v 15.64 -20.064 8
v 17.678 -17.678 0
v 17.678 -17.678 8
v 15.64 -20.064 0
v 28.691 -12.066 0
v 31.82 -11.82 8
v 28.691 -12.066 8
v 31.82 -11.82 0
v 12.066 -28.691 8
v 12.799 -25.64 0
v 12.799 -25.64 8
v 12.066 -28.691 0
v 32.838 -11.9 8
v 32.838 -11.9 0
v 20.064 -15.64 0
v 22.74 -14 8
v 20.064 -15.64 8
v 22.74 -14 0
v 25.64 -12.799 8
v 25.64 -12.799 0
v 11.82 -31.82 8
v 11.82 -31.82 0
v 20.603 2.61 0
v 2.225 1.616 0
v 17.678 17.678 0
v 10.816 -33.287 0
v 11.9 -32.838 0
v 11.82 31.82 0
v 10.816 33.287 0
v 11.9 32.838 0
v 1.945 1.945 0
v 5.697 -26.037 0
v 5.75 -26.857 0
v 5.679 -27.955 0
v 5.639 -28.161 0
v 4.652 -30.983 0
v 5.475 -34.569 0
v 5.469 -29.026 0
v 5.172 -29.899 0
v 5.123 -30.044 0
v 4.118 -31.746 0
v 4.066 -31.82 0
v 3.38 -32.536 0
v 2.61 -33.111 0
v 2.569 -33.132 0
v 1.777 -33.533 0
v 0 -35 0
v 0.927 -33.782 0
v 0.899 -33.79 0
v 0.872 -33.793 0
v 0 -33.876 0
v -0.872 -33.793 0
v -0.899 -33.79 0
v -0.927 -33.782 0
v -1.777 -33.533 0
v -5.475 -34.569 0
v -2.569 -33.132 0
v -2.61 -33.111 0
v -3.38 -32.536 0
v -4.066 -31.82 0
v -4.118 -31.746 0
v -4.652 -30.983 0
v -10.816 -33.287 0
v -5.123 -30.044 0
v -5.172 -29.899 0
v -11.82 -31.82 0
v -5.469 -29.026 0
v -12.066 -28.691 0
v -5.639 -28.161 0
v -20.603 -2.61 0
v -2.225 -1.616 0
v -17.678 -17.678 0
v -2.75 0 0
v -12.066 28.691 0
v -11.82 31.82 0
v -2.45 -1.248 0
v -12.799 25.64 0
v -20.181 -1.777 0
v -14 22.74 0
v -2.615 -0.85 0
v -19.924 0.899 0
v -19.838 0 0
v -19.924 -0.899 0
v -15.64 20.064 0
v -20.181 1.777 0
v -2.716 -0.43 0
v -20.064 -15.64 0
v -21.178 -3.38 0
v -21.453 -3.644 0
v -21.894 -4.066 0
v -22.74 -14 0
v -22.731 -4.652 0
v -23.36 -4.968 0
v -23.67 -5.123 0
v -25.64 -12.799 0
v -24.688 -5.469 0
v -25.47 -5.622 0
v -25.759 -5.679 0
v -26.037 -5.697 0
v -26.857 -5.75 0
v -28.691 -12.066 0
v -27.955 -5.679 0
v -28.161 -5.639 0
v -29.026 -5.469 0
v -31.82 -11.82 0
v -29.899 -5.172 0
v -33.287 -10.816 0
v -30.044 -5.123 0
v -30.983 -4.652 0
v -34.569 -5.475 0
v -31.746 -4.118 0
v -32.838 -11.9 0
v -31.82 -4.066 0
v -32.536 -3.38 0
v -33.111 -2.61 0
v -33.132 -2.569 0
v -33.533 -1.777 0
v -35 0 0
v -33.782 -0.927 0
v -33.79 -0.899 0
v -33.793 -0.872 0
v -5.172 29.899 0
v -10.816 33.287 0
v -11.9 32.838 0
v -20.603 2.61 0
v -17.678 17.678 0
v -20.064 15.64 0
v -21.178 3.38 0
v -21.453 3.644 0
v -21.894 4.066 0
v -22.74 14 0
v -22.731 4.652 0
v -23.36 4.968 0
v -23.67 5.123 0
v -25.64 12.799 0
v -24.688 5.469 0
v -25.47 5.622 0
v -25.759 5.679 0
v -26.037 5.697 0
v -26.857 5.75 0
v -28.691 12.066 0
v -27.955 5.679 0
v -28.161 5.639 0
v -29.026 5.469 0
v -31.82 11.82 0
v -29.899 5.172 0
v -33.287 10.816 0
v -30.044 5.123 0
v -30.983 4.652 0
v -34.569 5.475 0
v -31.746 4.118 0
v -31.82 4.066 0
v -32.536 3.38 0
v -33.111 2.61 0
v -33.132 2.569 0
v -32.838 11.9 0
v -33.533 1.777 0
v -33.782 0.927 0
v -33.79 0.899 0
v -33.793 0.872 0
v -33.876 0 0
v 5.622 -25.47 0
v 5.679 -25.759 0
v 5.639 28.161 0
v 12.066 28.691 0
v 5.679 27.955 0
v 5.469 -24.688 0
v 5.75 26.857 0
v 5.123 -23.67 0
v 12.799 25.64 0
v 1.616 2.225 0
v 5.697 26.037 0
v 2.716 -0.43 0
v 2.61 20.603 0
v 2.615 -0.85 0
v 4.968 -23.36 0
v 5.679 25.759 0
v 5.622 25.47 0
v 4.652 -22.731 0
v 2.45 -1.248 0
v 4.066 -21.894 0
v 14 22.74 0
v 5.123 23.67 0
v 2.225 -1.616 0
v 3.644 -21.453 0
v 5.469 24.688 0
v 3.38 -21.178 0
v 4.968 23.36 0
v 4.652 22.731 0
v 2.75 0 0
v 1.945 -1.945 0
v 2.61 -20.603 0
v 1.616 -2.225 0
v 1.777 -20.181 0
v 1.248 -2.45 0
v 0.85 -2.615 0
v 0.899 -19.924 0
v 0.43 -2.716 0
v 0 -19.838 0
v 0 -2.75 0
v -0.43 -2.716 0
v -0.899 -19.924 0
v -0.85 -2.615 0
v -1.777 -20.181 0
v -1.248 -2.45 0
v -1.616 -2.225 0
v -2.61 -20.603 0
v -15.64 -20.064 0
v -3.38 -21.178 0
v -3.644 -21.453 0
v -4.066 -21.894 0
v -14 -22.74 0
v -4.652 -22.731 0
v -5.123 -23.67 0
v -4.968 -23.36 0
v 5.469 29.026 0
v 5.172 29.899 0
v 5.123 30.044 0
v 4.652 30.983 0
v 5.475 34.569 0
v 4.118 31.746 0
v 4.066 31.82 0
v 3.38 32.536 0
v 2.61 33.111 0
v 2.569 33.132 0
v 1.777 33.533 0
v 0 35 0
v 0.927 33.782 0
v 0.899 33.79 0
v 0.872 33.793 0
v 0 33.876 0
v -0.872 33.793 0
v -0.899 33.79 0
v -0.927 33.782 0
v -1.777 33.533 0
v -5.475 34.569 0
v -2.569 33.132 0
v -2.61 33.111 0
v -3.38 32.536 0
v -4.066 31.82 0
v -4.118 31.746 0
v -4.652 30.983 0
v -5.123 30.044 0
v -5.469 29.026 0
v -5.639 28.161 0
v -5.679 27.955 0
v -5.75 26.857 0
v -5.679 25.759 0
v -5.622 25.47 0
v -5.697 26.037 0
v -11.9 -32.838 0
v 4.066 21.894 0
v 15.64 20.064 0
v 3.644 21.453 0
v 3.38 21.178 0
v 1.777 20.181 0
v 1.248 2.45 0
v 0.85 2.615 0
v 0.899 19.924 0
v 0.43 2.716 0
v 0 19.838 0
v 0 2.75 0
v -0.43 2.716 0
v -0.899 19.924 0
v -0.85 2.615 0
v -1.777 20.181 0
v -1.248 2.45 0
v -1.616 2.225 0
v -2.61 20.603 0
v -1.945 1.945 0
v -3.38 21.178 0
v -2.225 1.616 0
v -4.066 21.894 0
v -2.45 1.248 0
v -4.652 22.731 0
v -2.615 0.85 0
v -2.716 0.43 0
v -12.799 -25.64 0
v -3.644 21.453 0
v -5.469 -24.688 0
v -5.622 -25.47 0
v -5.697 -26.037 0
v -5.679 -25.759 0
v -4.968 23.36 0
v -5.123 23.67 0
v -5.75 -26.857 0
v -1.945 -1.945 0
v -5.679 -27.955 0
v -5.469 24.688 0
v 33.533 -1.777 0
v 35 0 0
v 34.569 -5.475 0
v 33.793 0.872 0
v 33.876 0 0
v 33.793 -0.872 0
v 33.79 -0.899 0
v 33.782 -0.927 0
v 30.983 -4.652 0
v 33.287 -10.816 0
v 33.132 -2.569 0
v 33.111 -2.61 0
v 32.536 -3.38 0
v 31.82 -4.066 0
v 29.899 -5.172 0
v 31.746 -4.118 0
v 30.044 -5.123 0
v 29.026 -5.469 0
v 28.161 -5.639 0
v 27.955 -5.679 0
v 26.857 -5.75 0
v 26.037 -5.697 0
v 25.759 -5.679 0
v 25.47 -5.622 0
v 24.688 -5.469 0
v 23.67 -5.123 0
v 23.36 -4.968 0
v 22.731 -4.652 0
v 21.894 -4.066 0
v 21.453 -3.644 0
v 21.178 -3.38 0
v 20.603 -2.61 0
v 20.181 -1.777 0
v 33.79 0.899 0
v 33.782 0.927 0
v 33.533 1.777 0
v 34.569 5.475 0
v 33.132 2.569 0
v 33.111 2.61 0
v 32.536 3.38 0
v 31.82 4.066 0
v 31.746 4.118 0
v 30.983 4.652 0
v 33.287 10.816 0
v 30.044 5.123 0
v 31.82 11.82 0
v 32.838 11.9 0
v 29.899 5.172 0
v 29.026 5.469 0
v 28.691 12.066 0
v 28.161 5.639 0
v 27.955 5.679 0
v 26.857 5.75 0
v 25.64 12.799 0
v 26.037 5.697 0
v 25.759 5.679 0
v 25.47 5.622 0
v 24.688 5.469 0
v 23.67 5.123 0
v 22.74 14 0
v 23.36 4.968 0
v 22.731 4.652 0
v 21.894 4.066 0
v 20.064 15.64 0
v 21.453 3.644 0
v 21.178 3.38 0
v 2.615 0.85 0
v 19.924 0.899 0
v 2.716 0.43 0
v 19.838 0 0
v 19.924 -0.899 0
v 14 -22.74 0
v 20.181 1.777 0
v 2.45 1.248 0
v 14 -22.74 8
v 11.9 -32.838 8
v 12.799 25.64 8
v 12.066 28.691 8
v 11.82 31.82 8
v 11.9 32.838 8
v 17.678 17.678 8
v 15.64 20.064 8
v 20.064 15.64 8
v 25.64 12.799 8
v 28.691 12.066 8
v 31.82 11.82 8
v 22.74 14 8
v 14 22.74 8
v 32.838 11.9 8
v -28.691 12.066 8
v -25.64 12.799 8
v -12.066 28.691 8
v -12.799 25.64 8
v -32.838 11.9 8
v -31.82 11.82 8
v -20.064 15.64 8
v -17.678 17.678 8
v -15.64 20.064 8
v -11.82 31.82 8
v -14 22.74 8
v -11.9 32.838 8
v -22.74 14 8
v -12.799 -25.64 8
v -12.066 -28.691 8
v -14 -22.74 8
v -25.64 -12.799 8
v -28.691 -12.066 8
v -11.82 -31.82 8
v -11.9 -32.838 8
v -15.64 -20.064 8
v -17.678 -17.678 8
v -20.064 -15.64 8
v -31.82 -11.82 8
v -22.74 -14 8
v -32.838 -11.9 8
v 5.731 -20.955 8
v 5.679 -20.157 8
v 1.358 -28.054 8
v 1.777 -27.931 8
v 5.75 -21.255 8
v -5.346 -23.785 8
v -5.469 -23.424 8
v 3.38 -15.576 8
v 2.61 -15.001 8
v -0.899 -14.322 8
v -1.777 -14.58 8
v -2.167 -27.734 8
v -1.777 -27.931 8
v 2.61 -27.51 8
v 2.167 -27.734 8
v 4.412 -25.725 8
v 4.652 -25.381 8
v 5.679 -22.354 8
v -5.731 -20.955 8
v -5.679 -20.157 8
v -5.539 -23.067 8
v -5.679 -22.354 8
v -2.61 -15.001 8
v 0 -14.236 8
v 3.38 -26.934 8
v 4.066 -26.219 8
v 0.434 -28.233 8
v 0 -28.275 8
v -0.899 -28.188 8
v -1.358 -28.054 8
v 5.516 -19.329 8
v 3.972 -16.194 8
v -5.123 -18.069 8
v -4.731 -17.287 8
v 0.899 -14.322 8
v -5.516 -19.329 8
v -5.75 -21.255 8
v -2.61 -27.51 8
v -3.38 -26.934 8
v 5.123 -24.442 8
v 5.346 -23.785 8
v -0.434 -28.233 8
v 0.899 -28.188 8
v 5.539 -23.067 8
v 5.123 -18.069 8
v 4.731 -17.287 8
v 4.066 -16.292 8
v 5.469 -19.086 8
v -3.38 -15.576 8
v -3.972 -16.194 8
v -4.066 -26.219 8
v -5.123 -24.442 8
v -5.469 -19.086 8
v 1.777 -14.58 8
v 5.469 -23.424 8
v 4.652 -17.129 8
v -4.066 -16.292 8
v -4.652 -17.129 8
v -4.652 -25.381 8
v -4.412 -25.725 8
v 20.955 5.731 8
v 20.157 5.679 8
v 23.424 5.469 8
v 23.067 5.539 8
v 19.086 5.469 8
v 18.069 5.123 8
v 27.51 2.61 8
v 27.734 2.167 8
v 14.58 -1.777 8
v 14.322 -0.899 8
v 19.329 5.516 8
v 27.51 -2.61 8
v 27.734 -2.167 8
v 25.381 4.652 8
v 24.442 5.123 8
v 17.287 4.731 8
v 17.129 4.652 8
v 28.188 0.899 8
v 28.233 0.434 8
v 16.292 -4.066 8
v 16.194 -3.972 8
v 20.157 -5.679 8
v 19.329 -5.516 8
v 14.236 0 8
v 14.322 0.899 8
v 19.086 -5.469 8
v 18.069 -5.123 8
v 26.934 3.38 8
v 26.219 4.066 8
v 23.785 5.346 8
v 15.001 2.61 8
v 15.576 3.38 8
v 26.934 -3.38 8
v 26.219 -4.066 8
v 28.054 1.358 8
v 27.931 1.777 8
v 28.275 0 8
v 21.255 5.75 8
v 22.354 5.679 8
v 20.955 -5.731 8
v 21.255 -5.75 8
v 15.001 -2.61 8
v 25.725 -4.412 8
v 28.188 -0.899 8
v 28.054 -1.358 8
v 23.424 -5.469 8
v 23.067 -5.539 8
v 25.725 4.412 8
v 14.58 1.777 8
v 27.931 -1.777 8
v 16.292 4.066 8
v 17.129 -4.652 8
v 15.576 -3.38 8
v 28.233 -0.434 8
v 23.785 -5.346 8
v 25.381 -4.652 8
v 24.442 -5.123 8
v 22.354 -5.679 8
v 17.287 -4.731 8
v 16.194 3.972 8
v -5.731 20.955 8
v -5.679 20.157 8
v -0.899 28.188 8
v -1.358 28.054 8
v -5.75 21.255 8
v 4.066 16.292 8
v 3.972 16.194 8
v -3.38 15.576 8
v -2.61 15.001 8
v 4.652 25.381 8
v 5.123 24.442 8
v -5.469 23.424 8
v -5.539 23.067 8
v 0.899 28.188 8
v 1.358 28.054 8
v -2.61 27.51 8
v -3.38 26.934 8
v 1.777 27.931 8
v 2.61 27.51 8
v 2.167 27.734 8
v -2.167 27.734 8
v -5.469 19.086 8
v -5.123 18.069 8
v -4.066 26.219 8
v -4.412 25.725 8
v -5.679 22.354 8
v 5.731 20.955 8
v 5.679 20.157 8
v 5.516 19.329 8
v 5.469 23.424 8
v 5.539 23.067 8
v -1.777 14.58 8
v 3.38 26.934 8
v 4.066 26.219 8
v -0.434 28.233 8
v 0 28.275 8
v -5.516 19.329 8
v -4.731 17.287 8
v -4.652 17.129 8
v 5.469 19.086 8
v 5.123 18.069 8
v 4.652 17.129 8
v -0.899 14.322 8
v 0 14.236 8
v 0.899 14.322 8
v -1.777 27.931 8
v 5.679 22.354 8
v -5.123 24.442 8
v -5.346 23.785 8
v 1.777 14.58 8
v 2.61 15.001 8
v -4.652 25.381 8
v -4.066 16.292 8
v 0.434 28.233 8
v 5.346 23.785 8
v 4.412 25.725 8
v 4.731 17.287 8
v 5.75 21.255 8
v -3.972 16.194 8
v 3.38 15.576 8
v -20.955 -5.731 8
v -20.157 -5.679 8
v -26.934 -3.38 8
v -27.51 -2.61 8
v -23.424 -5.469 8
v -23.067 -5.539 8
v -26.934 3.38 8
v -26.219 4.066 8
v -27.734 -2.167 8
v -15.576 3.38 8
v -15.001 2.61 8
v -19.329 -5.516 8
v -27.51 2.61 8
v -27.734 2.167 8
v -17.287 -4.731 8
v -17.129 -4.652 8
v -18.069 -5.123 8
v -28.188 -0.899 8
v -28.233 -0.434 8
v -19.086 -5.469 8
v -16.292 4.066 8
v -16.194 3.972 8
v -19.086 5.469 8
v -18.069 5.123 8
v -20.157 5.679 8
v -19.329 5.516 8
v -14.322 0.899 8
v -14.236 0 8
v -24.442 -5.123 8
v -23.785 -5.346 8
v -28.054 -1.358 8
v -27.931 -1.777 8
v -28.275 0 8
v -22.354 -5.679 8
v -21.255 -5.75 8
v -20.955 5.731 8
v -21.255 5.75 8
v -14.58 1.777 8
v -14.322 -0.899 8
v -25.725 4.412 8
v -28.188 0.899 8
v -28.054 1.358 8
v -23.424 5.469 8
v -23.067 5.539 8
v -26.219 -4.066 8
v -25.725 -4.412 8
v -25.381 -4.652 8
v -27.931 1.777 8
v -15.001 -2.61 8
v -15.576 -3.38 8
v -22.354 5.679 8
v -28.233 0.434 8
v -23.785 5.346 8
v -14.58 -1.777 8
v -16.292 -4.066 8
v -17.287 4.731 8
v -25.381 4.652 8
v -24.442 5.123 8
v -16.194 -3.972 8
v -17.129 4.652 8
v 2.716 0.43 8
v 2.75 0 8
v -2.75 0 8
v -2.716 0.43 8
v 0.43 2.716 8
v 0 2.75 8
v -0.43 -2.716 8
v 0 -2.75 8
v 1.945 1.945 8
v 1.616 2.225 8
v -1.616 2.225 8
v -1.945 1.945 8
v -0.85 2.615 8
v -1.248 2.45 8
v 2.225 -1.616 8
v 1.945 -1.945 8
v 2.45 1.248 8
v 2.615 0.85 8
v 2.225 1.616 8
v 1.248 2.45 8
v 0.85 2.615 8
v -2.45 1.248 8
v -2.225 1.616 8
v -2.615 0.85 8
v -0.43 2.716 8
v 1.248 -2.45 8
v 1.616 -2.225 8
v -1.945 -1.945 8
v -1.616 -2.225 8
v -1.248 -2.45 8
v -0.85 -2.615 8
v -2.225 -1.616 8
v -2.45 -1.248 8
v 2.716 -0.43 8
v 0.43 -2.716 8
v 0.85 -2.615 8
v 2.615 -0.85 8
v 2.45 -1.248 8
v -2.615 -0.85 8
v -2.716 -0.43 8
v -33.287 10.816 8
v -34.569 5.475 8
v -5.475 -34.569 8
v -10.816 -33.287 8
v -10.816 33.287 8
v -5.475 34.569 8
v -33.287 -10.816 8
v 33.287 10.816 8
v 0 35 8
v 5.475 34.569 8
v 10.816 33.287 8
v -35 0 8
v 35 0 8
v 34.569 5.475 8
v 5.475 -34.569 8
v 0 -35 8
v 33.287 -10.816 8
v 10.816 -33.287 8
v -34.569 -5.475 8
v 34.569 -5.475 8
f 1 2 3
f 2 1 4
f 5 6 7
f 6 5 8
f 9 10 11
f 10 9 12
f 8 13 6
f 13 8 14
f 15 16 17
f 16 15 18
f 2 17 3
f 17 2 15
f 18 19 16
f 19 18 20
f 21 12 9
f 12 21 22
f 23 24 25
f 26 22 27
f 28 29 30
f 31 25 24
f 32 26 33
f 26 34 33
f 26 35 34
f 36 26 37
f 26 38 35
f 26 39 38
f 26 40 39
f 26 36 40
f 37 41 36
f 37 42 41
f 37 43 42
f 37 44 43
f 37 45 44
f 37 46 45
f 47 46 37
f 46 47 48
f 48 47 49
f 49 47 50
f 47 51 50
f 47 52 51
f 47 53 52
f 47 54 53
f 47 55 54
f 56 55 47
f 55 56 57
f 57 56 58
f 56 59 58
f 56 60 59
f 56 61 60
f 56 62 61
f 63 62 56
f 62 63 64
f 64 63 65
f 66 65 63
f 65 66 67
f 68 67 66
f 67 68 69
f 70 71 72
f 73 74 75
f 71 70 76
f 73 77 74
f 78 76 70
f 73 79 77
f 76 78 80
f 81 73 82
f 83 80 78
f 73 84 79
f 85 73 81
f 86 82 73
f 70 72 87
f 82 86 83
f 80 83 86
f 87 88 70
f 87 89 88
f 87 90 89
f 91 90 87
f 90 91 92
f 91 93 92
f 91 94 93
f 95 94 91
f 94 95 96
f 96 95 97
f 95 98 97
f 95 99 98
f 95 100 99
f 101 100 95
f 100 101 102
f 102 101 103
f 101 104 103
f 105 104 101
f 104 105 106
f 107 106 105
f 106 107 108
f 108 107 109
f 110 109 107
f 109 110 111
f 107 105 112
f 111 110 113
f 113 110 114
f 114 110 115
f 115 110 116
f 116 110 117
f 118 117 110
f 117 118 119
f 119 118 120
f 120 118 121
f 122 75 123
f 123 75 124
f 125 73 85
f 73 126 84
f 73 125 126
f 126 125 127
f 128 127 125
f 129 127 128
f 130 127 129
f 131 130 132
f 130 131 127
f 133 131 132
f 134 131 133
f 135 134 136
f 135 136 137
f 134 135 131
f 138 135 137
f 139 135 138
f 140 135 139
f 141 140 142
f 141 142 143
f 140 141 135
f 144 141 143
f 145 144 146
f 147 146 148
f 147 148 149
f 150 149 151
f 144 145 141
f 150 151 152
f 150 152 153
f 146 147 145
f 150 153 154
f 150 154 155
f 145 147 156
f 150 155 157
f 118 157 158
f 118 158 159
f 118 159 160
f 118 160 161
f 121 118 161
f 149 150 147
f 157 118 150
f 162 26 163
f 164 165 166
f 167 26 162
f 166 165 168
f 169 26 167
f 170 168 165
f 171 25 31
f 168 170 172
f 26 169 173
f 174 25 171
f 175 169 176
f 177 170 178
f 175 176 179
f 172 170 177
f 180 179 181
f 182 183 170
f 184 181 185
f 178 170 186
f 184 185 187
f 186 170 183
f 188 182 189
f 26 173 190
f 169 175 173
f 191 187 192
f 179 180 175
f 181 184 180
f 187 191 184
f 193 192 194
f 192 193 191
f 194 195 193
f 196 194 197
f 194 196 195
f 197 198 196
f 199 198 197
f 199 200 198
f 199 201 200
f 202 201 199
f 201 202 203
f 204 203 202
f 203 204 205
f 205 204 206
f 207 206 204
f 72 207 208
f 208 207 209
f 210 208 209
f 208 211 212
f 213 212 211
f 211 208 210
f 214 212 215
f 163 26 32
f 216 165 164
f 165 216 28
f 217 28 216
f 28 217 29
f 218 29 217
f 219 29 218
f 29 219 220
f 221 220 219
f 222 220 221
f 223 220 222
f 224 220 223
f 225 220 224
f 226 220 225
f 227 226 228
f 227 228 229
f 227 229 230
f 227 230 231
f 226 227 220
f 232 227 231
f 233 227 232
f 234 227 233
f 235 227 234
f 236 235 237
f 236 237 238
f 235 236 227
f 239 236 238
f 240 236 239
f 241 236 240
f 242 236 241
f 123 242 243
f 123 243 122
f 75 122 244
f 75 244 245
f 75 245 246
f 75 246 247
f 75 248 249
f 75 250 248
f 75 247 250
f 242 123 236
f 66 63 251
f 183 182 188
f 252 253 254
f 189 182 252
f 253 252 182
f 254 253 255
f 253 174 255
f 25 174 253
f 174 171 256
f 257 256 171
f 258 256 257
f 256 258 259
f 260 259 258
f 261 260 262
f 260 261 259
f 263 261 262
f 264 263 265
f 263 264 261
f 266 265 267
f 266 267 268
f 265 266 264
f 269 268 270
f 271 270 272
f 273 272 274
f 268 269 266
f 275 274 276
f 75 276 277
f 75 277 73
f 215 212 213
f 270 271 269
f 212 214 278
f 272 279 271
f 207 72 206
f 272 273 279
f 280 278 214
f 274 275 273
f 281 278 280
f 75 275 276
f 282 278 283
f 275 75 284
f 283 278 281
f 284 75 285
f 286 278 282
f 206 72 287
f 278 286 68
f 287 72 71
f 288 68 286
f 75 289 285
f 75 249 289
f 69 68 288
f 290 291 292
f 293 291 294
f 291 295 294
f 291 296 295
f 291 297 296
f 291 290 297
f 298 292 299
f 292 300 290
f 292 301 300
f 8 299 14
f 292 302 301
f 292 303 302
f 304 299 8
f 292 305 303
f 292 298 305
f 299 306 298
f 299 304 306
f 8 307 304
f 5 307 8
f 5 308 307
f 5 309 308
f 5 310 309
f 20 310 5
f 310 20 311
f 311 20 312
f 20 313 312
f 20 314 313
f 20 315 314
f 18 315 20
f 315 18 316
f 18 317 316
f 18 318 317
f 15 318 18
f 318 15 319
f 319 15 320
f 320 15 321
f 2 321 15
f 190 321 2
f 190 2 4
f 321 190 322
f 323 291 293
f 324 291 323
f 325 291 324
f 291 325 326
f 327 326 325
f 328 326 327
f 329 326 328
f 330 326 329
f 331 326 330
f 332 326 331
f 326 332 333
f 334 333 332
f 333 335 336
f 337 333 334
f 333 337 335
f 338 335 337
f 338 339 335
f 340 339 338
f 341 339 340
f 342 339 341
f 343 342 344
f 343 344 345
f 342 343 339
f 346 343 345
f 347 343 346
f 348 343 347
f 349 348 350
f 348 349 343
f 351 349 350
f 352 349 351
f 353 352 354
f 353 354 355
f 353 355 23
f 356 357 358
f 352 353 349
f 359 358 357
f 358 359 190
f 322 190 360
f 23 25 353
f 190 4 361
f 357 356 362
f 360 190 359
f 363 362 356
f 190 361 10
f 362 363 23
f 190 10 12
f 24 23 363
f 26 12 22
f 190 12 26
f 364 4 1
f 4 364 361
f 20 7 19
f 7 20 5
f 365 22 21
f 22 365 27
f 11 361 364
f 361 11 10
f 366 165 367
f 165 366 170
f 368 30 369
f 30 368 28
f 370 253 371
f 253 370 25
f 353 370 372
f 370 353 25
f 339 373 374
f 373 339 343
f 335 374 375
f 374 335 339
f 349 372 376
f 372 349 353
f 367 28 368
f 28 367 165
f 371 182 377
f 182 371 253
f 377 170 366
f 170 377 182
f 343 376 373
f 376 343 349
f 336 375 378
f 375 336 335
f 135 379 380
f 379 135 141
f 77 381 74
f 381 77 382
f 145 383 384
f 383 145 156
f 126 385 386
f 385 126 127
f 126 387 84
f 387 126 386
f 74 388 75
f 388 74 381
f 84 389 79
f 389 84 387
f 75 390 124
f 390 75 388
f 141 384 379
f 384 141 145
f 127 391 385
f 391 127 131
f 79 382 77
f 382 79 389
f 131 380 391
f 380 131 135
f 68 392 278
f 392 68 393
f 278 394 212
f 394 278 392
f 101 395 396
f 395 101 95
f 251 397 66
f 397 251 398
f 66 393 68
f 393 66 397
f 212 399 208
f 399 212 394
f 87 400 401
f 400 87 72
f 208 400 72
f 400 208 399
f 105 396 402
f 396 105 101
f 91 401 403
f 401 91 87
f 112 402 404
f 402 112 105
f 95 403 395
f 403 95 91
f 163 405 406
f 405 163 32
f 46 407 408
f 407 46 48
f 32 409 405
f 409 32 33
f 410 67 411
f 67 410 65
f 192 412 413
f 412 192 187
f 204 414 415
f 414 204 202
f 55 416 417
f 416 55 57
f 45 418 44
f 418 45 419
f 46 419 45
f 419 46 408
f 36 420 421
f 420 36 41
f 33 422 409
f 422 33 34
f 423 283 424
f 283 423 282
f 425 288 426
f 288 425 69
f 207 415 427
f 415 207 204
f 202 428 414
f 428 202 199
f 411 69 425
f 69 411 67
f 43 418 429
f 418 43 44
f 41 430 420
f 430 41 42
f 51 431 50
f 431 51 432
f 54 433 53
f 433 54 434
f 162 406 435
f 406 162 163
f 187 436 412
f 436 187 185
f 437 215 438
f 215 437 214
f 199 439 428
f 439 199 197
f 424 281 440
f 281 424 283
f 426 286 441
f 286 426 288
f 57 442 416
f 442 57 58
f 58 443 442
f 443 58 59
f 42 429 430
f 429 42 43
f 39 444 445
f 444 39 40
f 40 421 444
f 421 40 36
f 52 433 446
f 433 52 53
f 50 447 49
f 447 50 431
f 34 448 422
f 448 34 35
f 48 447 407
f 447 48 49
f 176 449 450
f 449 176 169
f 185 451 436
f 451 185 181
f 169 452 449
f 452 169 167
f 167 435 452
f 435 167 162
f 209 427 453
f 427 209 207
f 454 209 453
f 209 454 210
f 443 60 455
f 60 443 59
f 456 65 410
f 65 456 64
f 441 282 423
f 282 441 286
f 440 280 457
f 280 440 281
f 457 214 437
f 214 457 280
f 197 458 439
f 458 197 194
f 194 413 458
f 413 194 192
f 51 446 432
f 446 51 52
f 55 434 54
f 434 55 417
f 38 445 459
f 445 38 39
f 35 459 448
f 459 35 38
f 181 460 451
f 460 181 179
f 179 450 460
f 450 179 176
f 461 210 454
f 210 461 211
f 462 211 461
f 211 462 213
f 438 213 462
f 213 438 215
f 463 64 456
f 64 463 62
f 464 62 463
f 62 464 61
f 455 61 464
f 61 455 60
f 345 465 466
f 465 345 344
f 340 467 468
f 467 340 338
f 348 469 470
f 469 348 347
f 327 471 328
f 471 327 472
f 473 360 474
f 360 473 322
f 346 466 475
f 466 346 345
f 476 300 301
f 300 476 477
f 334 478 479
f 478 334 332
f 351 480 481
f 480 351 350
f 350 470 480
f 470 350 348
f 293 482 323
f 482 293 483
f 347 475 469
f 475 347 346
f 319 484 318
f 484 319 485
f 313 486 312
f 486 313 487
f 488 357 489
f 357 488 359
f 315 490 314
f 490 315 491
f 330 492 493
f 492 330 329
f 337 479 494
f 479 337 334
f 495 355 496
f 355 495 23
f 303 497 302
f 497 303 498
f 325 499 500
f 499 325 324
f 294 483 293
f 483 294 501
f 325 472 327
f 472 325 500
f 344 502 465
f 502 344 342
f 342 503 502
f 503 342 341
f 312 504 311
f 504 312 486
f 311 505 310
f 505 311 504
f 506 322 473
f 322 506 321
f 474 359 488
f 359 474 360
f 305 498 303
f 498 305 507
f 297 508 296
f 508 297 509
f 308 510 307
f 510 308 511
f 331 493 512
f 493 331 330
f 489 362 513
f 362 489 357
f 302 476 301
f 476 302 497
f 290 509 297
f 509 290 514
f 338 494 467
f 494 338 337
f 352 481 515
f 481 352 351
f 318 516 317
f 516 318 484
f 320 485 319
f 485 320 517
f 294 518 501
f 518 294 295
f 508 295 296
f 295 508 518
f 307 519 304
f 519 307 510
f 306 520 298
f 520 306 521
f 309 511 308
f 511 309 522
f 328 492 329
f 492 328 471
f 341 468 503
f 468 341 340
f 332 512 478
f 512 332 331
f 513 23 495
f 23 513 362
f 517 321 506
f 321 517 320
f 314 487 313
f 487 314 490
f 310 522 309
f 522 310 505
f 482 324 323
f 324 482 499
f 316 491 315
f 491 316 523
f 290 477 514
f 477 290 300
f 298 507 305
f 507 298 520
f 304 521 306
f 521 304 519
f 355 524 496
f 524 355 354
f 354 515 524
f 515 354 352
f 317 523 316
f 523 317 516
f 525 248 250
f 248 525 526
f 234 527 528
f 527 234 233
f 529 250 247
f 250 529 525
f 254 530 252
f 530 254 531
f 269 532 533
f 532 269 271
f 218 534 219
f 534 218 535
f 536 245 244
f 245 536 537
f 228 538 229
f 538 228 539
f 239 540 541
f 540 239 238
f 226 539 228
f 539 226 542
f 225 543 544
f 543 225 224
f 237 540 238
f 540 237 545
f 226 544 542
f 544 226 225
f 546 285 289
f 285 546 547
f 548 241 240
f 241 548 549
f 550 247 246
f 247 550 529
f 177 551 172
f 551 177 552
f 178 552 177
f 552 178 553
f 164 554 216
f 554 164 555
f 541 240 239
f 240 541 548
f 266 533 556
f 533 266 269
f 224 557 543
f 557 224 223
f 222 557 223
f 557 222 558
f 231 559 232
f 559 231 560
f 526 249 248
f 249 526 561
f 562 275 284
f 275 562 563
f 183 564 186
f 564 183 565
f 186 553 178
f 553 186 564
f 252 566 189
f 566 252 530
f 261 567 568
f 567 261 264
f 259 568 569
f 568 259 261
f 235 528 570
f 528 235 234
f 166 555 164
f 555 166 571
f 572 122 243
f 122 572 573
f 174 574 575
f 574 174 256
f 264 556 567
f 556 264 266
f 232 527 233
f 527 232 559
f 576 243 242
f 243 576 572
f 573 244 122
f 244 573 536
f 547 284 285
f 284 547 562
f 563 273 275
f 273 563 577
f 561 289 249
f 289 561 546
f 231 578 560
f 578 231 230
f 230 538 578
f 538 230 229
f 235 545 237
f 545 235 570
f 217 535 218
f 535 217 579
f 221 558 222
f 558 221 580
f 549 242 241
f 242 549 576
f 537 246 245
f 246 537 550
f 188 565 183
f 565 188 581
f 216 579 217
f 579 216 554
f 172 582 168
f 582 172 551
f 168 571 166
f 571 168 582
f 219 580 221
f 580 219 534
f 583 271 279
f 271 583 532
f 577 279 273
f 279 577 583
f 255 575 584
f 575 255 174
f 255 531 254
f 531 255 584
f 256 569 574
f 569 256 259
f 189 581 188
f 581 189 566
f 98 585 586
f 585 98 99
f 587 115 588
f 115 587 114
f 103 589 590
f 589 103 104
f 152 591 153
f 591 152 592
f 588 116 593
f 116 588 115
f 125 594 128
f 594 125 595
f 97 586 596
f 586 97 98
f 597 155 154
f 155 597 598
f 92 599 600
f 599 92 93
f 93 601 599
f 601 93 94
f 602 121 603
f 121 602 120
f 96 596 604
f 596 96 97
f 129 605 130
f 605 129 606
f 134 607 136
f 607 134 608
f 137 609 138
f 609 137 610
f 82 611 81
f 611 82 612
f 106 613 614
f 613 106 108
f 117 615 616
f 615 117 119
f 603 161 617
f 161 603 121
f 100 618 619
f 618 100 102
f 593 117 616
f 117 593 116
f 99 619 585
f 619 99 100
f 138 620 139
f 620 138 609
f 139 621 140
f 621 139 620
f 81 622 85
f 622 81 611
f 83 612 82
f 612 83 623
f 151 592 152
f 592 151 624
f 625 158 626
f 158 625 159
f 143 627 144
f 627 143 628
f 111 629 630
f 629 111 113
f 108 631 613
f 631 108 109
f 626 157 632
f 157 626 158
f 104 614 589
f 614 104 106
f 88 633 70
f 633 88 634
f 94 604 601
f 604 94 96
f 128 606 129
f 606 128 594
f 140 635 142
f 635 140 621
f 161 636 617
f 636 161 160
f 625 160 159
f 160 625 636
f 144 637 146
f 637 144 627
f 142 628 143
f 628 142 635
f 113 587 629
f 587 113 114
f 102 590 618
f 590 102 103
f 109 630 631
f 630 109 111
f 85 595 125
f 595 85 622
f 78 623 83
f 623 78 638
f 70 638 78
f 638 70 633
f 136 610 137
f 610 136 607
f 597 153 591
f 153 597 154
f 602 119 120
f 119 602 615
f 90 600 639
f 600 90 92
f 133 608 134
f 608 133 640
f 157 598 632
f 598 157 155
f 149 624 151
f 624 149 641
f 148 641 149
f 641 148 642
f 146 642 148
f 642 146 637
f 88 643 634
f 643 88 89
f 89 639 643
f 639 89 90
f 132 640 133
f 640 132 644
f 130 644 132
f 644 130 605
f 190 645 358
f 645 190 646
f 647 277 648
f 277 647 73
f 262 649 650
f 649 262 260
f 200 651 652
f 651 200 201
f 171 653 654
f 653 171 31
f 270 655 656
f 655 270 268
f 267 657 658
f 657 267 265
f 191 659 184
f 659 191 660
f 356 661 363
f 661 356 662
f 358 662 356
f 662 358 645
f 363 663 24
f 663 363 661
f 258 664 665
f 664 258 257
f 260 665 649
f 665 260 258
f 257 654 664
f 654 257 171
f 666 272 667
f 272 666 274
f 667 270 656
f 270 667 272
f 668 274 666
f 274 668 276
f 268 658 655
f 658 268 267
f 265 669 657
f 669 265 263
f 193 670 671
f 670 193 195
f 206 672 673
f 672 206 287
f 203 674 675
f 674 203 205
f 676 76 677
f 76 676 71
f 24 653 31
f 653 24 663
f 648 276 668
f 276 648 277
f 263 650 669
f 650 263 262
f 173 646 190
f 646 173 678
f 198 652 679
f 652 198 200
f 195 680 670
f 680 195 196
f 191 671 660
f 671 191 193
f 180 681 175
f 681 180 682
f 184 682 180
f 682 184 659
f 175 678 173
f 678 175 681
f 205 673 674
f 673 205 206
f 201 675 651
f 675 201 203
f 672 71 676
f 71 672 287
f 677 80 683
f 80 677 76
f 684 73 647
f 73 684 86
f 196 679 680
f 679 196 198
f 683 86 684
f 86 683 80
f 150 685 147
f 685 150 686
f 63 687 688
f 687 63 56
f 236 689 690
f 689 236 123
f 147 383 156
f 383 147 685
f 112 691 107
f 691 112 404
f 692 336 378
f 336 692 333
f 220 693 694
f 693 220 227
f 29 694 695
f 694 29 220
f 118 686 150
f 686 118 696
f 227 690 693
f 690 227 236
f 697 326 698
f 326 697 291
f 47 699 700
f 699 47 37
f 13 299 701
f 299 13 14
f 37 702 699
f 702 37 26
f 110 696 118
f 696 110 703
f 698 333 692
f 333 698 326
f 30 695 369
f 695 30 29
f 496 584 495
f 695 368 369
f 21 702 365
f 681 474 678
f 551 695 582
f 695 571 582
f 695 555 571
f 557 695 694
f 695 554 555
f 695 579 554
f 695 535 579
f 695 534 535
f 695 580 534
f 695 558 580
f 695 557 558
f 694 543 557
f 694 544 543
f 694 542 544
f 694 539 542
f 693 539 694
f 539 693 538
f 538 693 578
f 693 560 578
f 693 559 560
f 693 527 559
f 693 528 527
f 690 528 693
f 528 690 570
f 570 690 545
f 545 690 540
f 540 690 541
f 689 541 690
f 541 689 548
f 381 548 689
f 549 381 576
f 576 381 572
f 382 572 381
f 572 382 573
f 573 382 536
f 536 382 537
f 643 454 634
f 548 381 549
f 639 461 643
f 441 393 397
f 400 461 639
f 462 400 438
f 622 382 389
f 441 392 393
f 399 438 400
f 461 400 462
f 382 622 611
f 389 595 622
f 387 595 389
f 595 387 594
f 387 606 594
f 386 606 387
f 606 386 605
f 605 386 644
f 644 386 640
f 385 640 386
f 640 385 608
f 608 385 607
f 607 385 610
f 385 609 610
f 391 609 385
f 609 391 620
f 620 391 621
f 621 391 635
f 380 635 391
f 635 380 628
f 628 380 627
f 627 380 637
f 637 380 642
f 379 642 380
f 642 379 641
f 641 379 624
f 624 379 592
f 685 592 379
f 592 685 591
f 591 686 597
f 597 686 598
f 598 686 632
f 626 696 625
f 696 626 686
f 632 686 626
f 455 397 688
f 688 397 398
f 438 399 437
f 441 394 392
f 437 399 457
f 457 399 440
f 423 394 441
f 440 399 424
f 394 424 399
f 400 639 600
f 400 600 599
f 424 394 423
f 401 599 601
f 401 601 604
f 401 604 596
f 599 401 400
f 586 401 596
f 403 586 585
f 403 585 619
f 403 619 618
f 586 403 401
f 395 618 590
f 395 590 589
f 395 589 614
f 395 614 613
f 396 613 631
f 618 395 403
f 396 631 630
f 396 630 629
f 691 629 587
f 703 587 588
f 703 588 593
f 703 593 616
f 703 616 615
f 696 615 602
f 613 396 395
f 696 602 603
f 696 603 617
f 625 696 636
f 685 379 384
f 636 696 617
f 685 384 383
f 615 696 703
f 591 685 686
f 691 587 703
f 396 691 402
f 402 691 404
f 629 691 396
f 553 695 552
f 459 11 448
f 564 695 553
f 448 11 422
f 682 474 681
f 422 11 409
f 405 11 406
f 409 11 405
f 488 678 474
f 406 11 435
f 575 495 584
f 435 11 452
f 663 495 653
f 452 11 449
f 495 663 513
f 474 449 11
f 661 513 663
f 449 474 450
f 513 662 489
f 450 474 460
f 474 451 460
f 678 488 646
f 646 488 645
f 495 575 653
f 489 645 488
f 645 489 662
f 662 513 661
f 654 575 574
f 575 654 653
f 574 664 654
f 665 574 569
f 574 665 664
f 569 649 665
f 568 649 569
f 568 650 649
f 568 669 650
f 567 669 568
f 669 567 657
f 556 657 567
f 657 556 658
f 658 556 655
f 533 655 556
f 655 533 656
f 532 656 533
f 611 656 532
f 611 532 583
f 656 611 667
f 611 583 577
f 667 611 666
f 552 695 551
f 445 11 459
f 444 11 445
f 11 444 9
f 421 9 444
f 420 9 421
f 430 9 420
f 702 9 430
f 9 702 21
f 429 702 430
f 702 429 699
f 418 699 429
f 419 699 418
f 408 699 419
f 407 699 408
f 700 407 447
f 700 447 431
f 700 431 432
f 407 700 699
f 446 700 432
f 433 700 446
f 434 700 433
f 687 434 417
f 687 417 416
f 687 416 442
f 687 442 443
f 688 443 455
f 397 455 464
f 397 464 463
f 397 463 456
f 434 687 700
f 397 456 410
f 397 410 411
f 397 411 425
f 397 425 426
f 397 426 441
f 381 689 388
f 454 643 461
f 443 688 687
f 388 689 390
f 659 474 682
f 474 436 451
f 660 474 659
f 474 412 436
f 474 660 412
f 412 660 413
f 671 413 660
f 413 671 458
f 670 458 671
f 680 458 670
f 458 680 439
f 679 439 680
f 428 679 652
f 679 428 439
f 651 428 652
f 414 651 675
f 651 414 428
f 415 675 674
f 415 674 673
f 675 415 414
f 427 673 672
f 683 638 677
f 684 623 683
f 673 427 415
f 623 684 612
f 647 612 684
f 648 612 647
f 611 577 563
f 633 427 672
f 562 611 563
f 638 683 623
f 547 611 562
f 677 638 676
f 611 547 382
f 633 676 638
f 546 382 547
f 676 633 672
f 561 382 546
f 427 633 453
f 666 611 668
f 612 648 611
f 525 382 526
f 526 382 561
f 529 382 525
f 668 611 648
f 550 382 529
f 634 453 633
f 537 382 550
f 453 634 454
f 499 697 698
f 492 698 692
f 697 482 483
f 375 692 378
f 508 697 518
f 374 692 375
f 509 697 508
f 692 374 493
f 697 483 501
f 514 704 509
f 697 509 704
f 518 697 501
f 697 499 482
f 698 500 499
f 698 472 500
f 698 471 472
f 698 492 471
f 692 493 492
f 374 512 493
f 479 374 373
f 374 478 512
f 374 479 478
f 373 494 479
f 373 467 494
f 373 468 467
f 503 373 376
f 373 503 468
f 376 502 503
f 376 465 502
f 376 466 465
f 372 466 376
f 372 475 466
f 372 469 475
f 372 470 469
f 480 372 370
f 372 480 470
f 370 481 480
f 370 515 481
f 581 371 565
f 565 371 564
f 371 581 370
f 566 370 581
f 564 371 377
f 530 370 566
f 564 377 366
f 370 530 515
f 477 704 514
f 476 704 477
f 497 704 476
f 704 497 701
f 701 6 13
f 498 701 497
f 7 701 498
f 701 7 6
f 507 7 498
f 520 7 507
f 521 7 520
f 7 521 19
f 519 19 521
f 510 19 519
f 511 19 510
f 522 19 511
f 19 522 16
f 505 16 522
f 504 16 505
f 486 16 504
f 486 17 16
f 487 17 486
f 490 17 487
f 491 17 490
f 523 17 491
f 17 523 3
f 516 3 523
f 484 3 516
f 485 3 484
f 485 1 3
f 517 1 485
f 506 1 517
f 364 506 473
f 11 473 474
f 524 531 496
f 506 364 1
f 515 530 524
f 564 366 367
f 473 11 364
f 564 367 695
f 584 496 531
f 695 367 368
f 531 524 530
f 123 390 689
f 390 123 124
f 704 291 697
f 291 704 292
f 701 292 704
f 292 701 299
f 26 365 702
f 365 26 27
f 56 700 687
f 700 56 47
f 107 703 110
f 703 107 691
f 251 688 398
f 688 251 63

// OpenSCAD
$fn = 40;

eppendorf_hole_diameter = 11.5;

extra_radius = 2;

shaft_diameter = 5;

//translate([0,0,8]) cylinder(d=8,h=15);


difference(){
    cylinder(d=70,h=8);
    union(){
        for(i = [0:3]){
            rotate(a=[0,0,i*(360/4)]){
                rotate(a=[-35,0,0]){
                    translate([0,-22,-20]) cylinder(d=eppendorf_hole_diameter,h=20);
                }
            }
        }

        for(i = [0:3]){
            rotate(a=[0,0,i*(360/4)+45]){
                translate([0,-45,0]) cylinder(d=40,h=20);
            }
        }
        translate([0,0,0]) cylinder(d=shaft_diameter+0.5,h=15);
    }
}
